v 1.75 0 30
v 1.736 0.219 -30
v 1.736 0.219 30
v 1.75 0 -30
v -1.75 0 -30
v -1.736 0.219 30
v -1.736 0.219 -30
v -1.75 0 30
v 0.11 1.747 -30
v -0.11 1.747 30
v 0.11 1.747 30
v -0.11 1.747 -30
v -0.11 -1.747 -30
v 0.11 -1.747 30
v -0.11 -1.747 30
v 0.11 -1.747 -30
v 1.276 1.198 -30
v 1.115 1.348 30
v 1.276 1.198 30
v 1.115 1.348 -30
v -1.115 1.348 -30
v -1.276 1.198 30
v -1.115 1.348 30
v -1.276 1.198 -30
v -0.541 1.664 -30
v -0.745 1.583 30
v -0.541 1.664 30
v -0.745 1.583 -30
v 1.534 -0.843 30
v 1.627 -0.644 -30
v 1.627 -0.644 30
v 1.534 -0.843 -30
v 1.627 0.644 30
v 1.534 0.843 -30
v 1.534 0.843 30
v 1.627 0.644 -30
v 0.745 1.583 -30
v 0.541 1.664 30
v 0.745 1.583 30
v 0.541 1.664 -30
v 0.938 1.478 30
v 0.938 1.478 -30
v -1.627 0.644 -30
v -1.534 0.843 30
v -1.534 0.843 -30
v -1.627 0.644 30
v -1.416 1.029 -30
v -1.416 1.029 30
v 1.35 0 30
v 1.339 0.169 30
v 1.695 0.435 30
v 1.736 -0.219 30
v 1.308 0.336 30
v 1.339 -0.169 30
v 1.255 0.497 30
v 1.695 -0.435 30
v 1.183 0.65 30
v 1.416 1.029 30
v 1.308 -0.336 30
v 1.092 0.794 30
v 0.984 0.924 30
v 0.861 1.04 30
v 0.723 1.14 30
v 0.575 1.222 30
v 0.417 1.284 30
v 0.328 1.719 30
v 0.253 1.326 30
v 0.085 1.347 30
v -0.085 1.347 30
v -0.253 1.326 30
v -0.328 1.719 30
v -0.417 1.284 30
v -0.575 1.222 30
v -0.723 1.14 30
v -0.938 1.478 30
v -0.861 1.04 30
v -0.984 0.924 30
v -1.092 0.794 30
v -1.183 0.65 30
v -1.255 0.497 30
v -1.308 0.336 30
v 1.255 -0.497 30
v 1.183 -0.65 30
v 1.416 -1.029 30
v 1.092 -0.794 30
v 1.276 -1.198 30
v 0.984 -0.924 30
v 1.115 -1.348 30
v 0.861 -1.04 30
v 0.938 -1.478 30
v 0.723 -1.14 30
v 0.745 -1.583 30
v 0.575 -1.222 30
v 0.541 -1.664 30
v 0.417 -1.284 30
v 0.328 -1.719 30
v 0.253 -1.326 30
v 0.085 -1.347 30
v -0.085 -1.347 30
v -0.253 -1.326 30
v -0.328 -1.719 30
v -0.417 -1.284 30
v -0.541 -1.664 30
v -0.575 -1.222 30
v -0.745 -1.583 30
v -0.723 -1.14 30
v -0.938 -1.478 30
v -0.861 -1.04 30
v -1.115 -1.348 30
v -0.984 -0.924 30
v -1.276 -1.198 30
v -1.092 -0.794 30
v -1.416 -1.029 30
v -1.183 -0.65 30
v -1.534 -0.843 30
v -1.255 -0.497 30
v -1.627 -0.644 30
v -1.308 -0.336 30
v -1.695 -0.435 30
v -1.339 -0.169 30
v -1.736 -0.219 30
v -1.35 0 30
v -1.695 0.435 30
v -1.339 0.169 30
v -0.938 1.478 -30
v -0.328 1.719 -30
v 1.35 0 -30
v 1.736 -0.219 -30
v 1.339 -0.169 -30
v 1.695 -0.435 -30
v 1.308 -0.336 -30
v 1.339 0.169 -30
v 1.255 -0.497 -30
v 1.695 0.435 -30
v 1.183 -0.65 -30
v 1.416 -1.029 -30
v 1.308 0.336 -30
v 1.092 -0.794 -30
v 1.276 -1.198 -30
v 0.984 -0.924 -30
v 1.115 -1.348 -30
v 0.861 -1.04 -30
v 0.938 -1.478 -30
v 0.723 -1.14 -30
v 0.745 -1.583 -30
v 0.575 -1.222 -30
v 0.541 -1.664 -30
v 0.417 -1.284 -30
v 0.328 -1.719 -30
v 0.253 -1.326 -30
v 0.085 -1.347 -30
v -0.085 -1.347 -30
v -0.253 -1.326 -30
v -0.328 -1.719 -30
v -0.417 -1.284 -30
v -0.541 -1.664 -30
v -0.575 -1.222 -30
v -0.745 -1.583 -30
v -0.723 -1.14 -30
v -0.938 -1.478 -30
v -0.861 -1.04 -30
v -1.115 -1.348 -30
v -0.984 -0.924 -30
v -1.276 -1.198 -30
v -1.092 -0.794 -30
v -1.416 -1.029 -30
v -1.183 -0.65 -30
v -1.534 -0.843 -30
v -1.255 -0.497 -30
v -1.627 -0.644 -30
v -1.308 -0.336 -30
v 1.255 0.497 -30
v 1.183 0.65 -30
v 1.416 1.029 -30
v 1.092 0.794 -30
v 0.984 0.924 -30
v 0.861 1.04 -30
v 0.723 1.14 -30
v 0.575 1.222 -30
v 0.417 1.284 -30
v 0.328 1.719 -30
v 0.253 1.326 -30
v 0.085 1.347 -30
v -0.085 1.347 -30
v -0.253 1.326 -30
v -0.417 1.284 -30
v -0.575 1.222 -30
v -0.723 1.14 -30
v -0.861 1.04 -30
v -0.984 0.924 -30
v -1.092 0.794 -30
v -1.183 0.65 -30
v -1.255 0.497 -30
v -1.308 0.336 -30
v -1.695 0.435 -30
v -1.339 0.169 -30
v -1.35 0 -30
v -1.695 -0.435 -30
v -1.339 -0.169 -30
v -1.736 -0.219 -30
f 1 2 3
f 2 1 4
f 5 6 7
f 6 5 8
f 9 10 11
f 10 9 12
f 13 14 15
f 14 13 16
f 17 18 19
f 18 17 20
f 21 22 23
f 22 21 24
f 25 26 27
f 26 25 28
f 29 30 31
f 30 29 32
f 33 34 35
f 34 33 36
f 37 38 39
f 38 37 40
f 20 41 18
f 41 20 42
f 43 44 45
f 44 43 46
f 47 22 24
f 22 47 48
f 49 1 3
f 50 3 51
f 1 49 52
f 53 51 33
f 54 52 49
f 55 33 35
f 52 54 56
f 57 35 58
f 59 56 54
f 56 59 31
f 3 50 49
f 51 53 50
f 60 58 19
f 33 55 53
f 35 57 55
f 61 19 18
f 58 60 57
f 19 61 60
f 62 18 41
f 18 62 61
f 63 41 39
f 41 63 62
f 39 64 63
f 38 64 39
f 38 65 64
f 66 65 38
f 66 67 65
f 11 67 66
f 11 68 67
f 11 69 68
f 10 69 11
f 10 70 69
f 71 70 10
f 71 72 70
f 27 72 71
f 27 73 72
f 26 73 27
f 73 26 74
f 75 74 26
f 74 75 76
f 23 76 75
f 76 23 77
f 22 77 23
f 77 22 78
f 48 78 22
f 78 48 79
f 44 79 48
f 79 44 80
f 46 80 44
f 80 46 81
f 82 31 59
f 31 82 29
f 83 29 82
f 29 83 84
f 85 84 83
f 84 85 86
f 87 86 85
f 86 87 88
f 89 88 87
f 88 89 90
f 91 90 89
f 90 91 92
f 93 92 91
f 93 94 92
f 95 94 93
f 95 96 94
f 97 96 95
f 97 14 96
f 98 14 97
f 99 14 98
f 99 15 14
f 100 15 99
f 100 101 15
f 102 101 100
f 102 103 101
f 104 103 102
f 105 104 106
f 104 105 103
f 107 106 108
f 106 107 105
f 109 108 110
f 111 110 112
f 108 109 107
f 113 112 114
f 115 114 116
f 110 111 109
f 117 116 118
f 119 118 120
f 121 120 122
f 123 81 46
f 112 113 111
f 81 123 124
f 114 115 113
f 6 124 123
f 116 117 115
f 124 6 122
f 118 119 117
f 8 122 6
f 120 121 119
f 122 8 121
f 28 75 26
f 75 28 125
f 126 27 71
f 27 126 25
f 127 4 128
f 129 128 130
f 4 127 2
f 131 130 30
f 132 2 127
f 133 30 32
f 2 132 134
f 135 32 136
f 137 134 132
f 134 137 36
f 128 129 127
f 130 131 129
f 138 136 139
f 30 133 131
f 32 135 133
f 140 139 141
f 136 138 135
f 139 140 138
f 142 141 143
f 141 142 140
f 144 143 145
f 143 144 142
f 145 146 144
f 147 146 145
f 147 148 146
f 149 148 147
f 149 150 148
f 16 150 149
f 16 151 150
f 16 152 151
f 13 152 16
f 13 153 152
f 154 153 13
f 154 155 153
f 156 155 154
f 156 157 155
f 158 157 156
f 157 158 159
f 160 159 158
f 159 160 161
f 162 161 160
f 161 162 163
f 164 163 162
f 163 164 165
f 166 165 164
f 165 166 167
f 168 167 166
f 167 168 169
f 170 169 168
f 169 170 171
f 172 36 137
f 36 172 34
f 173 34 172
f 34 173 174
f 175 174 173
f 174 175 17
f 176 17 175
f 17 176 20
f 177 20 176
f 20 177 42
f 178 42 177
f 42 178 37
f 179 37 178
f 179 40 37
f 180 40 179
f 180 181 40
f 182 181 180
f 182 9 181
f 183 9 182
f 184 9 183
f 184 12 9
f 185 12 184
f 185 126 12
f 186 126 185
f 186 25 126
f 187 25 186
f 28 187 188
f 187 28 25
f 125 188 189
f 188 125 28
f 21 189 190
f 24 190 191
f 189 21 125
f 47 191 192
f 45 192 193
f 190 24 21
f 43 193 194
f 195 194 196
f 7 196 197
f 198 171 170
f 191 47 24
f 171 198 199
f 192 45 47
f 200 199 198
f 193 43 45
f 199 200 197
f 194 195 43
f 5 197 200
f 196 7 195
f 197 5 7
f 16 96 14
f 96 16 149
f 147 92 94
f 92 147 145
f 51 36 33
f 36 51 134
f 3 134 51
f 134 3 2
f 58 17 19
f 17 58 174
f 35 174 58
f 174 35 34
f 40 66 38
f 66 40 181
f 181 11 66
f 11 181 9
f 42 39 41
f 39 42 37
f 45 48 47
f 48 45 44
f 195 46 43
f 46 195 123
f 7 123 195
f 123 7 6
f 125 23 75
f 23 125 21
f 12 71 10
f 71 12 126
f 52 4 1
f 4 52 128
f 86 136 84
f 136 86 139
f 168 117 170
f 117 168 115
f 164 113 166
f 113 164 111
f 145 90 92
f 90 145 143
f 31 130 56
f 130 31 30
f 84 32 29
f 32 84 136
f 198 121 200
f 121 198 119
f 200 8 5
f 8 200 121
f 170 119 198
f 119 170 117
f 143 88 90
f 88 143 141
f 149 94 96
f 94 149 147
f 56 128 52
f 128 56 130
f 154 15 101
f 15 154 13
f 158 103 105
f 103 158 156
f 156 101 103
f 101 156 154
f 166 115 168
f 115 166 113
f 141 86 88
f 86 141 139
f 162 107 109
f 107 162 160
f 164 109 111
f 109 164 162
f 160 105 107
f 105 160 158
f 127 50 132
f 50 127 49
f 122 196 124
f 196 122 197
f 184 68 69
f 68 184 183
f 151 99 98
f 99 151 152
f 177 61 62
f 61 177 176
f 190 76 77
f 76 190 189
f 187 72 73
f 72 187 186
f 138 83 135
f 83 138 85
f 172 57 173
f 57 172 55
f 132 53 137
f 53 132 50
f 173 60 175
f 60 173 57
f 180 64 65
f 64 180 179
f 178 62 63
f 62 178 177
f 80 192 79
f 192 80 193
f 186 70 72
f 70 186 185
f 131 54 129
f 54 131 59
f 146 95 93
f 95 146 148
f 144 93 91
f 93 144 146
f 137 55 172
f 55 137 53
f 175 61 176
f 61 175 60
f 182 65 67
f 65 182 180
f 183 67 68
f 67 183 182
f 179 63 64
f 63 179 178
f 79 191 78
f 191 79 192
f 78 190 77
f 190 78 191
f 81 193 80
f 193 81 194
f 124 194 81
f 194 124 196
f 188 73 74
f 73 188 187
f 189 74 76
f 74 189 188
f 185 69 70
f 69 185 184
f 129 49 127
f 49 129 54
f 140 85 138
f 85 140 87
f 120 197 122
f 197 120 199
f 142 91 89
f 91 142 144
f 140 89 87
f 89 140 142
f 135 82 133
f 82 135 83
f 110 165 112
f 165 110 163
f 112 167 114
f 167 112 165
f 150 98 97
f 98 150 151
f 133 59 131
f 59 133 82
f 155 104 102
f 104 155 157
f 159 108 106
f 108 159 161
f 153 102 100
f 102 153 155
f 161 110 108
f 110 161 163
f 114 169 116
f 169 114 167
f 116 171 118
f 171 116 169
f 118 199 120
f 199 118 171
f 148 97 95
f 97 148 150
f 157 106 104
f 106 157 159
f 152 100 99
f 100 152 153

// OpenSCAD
$fn = 50;


difference() {
	union() {
		translate(v = [0, 0, -30.0000000000]) {
			cylinder(h = 60, r = 1.7500000000);
		}
	}
	union() {
		translate(v = [0, 0, -100.0000000000]) {
			cylinder(h = 200, r = 1.3500000000);
		}
	}
}
